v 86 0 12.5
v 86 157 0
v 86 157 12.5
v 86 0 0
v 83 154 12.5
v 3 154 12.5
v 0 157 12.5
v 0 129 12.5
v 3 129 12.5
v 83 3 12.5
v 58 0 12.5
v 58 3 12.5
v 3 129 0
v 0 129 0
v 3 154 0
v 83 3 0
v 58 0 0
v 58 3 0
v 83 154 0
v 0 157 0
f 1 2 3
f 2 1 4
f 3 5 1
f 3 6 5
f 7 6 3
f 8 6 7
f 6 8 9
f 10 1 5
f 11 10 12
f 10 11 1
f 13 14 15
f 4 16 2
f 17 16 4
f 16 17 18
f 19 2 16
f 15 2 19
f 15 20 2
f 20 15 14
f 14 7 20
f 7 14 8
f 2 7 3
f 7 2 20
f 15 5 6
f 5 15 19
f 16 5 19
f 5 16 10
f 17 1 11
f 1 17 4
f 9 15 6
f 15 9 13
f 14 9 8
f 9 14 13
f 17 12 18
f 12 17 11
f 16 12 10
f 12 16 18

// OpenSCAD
// file: common.scad
// Common FDM helper modules
// Include fdm-pla.scad before using these.

include <fdm-pla.scad>

// A hole compensated for FDM shrinkage.
// d = nominal diameter, h = depth, center = center vertically
module fdm_hole(d, h, center=false) {
  cylinder(d=d + FDM_HOLE_COMPENSATION, h=h, center=center, $fn=max(32, ceil(d*4)));
}

// A shaft/pin sized for press fit into a compensated hole.
// d = nominal diameter, h = height
module fdm_shaft(d, h, center=false) {
  cylinder(d=d + FDM_PRESS_FIT * 2, h=h, center=center, $fn=max(32, ceil(d*4)));
}

// Bolt pattern — places children at evenly spaced points on a circle.
// n = number of bolts, r = bolt circle radius
module bolt_pattern(n, r) {
  for (i = [0 : n-1]) {
    angle = i * 360 / n;
    translate([r * cos(angle), r * sin(angle), 0])
      children();
  }
}

// Cylinder with a 45° chamfer on the bottom edge.
// d = diameter, h = height, chamfer = chamfer size
module chamfer_cylinder(d, h, chamfer=0.5) {
  union() {
    // Main body above chamfer
    translate([0, 0, chamfer])
      cylinder(d=d, h=h - chamfer, $fn=max(32, ceil(d*4)));
    // Chamfer cone
    cylinder(d1=d - chamfer*2, d2=d, h=chamfer, $fn=max(32, ceil(d*4)));
  }
}
// file: bambu-x1c.scad
// Bambu Lab X1 Carbon — build volume and dimension reporting

BED_X = 256;
BED_Y = 256;
BED_Z = 256;

// Assert a part fits within the build volume.
// Call with the bounding box dimensions of your part.
module assert_fits(x, y, z) {
  assert(x <= BED_X, str("Part X (", x, "mm) exceeds bed X (", BED_X, "mm)"));
  assert(y <= BED_Y, str("Part Y (", y, "mm) exceeds bed Y (", BED_Y, "mm)"));
  assert(z <= BED_Z, str("Part Z (", z, "mm) exceeds bed Z (", BED_Z, "mm)"));
}

// Echo dimensions in a parseable format for the Node.js pipeline.
// Call at the end of your .scad file with the part's bounding box.
module report_dimensions(x, y, z, label="part") {
  assert_fits(x, y, z);
  echo(str("DIMENSION:", label, ":x=", x));
  echo(str("DIMENSION:", label, ":y=", y));
  echo(str("DIMENSION:", label, ":z=", z));
}
// file: fdm-pla.scad
// FDM PLA Tolerance Constants
// Use these in all designs to ensure proper fit on the Bambu X1C.

// Fit offsets (applied to radius or per-side dimension)
FDM_PRESS_FIT     = -0.15;  // Friction-held joints
FDM_CLEARANCE_FIT =  0.25;  // Easy insert/remove
FDM_SLIDING_FIT   =  0.35;  // Moving parts

// Hole compensation (applied to diameter)
FDM_HOLE_COMPENSATION = 0.4;

// Structural minimums
MIN_WALL = 1.2;       // 3 perimeters at 0.4mm nozzle
MIN_FLOOR_CEIL = 0.8; // 4 layers at 0.2mm

// Overhang and bridging limits
MAX_OVERHANG_ANGLE = 45;  // degrees from vertical
MAX_BRIDGE_SPAN    = 10;  // mm unsupported horizontal span

// Layer and nozzle
NOZZLE_DIA   = 0.4;
LAYER_HEIGHT = 0.2;
// main file
// Printer-Corner-Fit Test Print
// ptouch-cradle / printer-corner-fit
//
// PURPOSE:
//   Verify the cradle's printer-pocket dimensions accommodate the actual
//   PT-P750W's corner geometry before committing to the full ~130 cm³
//   cradle print. Specifically tests:
//     - 1 mm/side XY clearance feel (not binding, not loose)
//     - X interior dimension (80 mm) — verified by the back wall +
//       opposite-end stubs constraining the printer at both back and
//       front edges
//     - Y interior dimension (154 mm) — verified by the full right
//       wall + the back wall + the front-right stub
//     - Inside-corner radius accommodates the printer's corner radii /
//       chamfers (verified at 3 of 4 corners; the fourth corner shares
//       identical geometry so it's covered by transitive geometry)
//     - 3 mm wall_thickness prints solid
//
// SHAPE: TWO FULL SIDES + STUBS FORMING THREE INSIDE CORNERS.
//   Full sides: back (short, +Y end) + right (long, +X side).
//   Stubs:      a left-long-wall stub at the back end (forms the
//               back-left corner with the back wall); a front-short-wall
//               stub at the right end (forms the front-right corner
//               with the right wall).
//   Three inside corners total: back-left, back-right, front-right.
//   Front-left corner is the only one not present — the printer's
//   front-left edge sits in open air during the fit test.
//
//   Key dimensions captured:
//     - X (pocket interior 80 mm): pinned by the back wall on the
//       back edge AND by both side walls (full right + left stub) on
//       the back portion of the pocket.
//     - Y (pocket interior 154 mm): pinned by the full right wall
//       (front edge to back edge) plus the back wall closing it.
//     - Both back corners + front-right corner: 3 of 4 inside corners
//       for printer's corners to seat against.
//
// COORDINATE SYSTEM:
//   X = printer-short axis (PT-P750W is 78 mm; pocket interior 80 mm)
//   Y = printer-long axis  (PT-P750W is 152 mm; pocket interior 154 mm)
//   Z = vertical
//   Origin at outer-front-left corner.
//   Pocket interior occupies x ∈ [wall_t, wall_t + pocket_int_x],
//                              y ∈ [0, pocket_int_y].
//   Back wall sits at y ∈ [pocket_int_y, pocket_int_y + wall_t].
//   Front edge is at y = 0 (open at the front-left corner only).
//
// HOW TO USE:
//   1. Print on Bambu X1C, PLA, standard 0.2 mm profile, no supports.
//   2. Place the piece on a flat surface (any wall outside-face down —
//      it's rigid as printed). Slide the printer into the pocket from
//      the +Y direction; the printer should bottom out against the back
//      wall with its right edge tracking parallel to the right wall.
//      The printer should:
//         - Have ~1 mm uniform gap to the right wall along the full
//           152 mm engagement
//         - Have ~1 mm uniform gap to the left stub at the back
//         - Have ~1 mm uniform gap to the front stub at the right
//         - Bottom out against the back wall along its full 78 mm width
//         - Not bind in any of the 3 inside corners (back-left,
//           back-right, front-right)
//   3. If fit is right: proceed to full cradle print.
//      If too tight: bump pocket clearance from 1 mm to 1.2 mm in cradle.scad.
//      If too loose: tighten to 0.8 mm.

include <fdm-pla.scad>
include <bambu-x1c.scad>
include <common.scad>

// ===== Render quality (draft defaults — shipper bumps if needed) =====
$fn              = 100;

// ===== Parameters inherited from parent design (ptouch-cradle spec.json) =====

wall_t           = 3.0;    // cradle wall_thickness
wall_h           = 12.5;   // half of cradle low_wall_h (25) — pocket profile
                           // is constant over the printer's full Z, so a low
                           // piece validates fit with ~half the print time.

// ===== Test-piece-specific parameters =====

pocket_int_x     = 80;     // cradle pocket_w — printer-short axis interior
pocket_int_y     = 154;    // cradle pocket_d — printer-long axis interior

// Stub length — enough to form a clean inside corner that the printer's
// corner radius can seat against. 25 mm is well past any plausible printer
// corner radius (typically 2–5 mm) while keeping the stubs cheap.
stub_len         = 25;


// ===================================================================
// FRAME WITH ONE OPEN CORNER
//
// Full back + full right wall + two stubs forming back-left and
// front-right inside corners. Validates X (pocket width) and Y
// (pocket depth) dimensions plus 3 of 4 corner geometries.
// ===================================================================

module printer_corner_fit() {
    union() {
        // Full back wall — spans the whole outer X at the +Y end.
        translate([0, pocket_int_y, 0])
            cube([wall_t * 2 + pocket_int_x, wall_t, wall_h]);

        // Full right long wall — runs the full pocket length plus the
        // back-wall thickness so it joins the back at the back-right corner.
        translate([wall_t + pocket_int_x, 0, 0])
            cube([wall_t, pocket_int_y + wall_t, wall_h]);

        // Left stub on the long wall — meets the back wall to form
        // the back-left inside corner. Length includes wall_t overlap
        // with the back wall to guarantee a solid union.
        translate([0, pocket_int_y - stub_len, 0])
            cube([wall_t, stub_len + wall_t, wall_h]);

        // Front stub on the short wall — meets the right wall to form
        // the front-right inside corner. Length includes wall_t overlap
        // with the right wall.
        translate([pocket_int_x + wall_t - stub_len, 0, 0])
            cube([stub_len + wall_t, wall_t, wall_h]);
    }
}

printer_corner_fit();


// ===================================================================
// DIMENSION REPORT
// ===================================================================

outer_x = wall_t * 2 + pocket_int_x;
outer_y = pocket_int_y + wall_t;
report_dimensions(outer_x, outer_y, wall_h, "printer-corner-fit");
